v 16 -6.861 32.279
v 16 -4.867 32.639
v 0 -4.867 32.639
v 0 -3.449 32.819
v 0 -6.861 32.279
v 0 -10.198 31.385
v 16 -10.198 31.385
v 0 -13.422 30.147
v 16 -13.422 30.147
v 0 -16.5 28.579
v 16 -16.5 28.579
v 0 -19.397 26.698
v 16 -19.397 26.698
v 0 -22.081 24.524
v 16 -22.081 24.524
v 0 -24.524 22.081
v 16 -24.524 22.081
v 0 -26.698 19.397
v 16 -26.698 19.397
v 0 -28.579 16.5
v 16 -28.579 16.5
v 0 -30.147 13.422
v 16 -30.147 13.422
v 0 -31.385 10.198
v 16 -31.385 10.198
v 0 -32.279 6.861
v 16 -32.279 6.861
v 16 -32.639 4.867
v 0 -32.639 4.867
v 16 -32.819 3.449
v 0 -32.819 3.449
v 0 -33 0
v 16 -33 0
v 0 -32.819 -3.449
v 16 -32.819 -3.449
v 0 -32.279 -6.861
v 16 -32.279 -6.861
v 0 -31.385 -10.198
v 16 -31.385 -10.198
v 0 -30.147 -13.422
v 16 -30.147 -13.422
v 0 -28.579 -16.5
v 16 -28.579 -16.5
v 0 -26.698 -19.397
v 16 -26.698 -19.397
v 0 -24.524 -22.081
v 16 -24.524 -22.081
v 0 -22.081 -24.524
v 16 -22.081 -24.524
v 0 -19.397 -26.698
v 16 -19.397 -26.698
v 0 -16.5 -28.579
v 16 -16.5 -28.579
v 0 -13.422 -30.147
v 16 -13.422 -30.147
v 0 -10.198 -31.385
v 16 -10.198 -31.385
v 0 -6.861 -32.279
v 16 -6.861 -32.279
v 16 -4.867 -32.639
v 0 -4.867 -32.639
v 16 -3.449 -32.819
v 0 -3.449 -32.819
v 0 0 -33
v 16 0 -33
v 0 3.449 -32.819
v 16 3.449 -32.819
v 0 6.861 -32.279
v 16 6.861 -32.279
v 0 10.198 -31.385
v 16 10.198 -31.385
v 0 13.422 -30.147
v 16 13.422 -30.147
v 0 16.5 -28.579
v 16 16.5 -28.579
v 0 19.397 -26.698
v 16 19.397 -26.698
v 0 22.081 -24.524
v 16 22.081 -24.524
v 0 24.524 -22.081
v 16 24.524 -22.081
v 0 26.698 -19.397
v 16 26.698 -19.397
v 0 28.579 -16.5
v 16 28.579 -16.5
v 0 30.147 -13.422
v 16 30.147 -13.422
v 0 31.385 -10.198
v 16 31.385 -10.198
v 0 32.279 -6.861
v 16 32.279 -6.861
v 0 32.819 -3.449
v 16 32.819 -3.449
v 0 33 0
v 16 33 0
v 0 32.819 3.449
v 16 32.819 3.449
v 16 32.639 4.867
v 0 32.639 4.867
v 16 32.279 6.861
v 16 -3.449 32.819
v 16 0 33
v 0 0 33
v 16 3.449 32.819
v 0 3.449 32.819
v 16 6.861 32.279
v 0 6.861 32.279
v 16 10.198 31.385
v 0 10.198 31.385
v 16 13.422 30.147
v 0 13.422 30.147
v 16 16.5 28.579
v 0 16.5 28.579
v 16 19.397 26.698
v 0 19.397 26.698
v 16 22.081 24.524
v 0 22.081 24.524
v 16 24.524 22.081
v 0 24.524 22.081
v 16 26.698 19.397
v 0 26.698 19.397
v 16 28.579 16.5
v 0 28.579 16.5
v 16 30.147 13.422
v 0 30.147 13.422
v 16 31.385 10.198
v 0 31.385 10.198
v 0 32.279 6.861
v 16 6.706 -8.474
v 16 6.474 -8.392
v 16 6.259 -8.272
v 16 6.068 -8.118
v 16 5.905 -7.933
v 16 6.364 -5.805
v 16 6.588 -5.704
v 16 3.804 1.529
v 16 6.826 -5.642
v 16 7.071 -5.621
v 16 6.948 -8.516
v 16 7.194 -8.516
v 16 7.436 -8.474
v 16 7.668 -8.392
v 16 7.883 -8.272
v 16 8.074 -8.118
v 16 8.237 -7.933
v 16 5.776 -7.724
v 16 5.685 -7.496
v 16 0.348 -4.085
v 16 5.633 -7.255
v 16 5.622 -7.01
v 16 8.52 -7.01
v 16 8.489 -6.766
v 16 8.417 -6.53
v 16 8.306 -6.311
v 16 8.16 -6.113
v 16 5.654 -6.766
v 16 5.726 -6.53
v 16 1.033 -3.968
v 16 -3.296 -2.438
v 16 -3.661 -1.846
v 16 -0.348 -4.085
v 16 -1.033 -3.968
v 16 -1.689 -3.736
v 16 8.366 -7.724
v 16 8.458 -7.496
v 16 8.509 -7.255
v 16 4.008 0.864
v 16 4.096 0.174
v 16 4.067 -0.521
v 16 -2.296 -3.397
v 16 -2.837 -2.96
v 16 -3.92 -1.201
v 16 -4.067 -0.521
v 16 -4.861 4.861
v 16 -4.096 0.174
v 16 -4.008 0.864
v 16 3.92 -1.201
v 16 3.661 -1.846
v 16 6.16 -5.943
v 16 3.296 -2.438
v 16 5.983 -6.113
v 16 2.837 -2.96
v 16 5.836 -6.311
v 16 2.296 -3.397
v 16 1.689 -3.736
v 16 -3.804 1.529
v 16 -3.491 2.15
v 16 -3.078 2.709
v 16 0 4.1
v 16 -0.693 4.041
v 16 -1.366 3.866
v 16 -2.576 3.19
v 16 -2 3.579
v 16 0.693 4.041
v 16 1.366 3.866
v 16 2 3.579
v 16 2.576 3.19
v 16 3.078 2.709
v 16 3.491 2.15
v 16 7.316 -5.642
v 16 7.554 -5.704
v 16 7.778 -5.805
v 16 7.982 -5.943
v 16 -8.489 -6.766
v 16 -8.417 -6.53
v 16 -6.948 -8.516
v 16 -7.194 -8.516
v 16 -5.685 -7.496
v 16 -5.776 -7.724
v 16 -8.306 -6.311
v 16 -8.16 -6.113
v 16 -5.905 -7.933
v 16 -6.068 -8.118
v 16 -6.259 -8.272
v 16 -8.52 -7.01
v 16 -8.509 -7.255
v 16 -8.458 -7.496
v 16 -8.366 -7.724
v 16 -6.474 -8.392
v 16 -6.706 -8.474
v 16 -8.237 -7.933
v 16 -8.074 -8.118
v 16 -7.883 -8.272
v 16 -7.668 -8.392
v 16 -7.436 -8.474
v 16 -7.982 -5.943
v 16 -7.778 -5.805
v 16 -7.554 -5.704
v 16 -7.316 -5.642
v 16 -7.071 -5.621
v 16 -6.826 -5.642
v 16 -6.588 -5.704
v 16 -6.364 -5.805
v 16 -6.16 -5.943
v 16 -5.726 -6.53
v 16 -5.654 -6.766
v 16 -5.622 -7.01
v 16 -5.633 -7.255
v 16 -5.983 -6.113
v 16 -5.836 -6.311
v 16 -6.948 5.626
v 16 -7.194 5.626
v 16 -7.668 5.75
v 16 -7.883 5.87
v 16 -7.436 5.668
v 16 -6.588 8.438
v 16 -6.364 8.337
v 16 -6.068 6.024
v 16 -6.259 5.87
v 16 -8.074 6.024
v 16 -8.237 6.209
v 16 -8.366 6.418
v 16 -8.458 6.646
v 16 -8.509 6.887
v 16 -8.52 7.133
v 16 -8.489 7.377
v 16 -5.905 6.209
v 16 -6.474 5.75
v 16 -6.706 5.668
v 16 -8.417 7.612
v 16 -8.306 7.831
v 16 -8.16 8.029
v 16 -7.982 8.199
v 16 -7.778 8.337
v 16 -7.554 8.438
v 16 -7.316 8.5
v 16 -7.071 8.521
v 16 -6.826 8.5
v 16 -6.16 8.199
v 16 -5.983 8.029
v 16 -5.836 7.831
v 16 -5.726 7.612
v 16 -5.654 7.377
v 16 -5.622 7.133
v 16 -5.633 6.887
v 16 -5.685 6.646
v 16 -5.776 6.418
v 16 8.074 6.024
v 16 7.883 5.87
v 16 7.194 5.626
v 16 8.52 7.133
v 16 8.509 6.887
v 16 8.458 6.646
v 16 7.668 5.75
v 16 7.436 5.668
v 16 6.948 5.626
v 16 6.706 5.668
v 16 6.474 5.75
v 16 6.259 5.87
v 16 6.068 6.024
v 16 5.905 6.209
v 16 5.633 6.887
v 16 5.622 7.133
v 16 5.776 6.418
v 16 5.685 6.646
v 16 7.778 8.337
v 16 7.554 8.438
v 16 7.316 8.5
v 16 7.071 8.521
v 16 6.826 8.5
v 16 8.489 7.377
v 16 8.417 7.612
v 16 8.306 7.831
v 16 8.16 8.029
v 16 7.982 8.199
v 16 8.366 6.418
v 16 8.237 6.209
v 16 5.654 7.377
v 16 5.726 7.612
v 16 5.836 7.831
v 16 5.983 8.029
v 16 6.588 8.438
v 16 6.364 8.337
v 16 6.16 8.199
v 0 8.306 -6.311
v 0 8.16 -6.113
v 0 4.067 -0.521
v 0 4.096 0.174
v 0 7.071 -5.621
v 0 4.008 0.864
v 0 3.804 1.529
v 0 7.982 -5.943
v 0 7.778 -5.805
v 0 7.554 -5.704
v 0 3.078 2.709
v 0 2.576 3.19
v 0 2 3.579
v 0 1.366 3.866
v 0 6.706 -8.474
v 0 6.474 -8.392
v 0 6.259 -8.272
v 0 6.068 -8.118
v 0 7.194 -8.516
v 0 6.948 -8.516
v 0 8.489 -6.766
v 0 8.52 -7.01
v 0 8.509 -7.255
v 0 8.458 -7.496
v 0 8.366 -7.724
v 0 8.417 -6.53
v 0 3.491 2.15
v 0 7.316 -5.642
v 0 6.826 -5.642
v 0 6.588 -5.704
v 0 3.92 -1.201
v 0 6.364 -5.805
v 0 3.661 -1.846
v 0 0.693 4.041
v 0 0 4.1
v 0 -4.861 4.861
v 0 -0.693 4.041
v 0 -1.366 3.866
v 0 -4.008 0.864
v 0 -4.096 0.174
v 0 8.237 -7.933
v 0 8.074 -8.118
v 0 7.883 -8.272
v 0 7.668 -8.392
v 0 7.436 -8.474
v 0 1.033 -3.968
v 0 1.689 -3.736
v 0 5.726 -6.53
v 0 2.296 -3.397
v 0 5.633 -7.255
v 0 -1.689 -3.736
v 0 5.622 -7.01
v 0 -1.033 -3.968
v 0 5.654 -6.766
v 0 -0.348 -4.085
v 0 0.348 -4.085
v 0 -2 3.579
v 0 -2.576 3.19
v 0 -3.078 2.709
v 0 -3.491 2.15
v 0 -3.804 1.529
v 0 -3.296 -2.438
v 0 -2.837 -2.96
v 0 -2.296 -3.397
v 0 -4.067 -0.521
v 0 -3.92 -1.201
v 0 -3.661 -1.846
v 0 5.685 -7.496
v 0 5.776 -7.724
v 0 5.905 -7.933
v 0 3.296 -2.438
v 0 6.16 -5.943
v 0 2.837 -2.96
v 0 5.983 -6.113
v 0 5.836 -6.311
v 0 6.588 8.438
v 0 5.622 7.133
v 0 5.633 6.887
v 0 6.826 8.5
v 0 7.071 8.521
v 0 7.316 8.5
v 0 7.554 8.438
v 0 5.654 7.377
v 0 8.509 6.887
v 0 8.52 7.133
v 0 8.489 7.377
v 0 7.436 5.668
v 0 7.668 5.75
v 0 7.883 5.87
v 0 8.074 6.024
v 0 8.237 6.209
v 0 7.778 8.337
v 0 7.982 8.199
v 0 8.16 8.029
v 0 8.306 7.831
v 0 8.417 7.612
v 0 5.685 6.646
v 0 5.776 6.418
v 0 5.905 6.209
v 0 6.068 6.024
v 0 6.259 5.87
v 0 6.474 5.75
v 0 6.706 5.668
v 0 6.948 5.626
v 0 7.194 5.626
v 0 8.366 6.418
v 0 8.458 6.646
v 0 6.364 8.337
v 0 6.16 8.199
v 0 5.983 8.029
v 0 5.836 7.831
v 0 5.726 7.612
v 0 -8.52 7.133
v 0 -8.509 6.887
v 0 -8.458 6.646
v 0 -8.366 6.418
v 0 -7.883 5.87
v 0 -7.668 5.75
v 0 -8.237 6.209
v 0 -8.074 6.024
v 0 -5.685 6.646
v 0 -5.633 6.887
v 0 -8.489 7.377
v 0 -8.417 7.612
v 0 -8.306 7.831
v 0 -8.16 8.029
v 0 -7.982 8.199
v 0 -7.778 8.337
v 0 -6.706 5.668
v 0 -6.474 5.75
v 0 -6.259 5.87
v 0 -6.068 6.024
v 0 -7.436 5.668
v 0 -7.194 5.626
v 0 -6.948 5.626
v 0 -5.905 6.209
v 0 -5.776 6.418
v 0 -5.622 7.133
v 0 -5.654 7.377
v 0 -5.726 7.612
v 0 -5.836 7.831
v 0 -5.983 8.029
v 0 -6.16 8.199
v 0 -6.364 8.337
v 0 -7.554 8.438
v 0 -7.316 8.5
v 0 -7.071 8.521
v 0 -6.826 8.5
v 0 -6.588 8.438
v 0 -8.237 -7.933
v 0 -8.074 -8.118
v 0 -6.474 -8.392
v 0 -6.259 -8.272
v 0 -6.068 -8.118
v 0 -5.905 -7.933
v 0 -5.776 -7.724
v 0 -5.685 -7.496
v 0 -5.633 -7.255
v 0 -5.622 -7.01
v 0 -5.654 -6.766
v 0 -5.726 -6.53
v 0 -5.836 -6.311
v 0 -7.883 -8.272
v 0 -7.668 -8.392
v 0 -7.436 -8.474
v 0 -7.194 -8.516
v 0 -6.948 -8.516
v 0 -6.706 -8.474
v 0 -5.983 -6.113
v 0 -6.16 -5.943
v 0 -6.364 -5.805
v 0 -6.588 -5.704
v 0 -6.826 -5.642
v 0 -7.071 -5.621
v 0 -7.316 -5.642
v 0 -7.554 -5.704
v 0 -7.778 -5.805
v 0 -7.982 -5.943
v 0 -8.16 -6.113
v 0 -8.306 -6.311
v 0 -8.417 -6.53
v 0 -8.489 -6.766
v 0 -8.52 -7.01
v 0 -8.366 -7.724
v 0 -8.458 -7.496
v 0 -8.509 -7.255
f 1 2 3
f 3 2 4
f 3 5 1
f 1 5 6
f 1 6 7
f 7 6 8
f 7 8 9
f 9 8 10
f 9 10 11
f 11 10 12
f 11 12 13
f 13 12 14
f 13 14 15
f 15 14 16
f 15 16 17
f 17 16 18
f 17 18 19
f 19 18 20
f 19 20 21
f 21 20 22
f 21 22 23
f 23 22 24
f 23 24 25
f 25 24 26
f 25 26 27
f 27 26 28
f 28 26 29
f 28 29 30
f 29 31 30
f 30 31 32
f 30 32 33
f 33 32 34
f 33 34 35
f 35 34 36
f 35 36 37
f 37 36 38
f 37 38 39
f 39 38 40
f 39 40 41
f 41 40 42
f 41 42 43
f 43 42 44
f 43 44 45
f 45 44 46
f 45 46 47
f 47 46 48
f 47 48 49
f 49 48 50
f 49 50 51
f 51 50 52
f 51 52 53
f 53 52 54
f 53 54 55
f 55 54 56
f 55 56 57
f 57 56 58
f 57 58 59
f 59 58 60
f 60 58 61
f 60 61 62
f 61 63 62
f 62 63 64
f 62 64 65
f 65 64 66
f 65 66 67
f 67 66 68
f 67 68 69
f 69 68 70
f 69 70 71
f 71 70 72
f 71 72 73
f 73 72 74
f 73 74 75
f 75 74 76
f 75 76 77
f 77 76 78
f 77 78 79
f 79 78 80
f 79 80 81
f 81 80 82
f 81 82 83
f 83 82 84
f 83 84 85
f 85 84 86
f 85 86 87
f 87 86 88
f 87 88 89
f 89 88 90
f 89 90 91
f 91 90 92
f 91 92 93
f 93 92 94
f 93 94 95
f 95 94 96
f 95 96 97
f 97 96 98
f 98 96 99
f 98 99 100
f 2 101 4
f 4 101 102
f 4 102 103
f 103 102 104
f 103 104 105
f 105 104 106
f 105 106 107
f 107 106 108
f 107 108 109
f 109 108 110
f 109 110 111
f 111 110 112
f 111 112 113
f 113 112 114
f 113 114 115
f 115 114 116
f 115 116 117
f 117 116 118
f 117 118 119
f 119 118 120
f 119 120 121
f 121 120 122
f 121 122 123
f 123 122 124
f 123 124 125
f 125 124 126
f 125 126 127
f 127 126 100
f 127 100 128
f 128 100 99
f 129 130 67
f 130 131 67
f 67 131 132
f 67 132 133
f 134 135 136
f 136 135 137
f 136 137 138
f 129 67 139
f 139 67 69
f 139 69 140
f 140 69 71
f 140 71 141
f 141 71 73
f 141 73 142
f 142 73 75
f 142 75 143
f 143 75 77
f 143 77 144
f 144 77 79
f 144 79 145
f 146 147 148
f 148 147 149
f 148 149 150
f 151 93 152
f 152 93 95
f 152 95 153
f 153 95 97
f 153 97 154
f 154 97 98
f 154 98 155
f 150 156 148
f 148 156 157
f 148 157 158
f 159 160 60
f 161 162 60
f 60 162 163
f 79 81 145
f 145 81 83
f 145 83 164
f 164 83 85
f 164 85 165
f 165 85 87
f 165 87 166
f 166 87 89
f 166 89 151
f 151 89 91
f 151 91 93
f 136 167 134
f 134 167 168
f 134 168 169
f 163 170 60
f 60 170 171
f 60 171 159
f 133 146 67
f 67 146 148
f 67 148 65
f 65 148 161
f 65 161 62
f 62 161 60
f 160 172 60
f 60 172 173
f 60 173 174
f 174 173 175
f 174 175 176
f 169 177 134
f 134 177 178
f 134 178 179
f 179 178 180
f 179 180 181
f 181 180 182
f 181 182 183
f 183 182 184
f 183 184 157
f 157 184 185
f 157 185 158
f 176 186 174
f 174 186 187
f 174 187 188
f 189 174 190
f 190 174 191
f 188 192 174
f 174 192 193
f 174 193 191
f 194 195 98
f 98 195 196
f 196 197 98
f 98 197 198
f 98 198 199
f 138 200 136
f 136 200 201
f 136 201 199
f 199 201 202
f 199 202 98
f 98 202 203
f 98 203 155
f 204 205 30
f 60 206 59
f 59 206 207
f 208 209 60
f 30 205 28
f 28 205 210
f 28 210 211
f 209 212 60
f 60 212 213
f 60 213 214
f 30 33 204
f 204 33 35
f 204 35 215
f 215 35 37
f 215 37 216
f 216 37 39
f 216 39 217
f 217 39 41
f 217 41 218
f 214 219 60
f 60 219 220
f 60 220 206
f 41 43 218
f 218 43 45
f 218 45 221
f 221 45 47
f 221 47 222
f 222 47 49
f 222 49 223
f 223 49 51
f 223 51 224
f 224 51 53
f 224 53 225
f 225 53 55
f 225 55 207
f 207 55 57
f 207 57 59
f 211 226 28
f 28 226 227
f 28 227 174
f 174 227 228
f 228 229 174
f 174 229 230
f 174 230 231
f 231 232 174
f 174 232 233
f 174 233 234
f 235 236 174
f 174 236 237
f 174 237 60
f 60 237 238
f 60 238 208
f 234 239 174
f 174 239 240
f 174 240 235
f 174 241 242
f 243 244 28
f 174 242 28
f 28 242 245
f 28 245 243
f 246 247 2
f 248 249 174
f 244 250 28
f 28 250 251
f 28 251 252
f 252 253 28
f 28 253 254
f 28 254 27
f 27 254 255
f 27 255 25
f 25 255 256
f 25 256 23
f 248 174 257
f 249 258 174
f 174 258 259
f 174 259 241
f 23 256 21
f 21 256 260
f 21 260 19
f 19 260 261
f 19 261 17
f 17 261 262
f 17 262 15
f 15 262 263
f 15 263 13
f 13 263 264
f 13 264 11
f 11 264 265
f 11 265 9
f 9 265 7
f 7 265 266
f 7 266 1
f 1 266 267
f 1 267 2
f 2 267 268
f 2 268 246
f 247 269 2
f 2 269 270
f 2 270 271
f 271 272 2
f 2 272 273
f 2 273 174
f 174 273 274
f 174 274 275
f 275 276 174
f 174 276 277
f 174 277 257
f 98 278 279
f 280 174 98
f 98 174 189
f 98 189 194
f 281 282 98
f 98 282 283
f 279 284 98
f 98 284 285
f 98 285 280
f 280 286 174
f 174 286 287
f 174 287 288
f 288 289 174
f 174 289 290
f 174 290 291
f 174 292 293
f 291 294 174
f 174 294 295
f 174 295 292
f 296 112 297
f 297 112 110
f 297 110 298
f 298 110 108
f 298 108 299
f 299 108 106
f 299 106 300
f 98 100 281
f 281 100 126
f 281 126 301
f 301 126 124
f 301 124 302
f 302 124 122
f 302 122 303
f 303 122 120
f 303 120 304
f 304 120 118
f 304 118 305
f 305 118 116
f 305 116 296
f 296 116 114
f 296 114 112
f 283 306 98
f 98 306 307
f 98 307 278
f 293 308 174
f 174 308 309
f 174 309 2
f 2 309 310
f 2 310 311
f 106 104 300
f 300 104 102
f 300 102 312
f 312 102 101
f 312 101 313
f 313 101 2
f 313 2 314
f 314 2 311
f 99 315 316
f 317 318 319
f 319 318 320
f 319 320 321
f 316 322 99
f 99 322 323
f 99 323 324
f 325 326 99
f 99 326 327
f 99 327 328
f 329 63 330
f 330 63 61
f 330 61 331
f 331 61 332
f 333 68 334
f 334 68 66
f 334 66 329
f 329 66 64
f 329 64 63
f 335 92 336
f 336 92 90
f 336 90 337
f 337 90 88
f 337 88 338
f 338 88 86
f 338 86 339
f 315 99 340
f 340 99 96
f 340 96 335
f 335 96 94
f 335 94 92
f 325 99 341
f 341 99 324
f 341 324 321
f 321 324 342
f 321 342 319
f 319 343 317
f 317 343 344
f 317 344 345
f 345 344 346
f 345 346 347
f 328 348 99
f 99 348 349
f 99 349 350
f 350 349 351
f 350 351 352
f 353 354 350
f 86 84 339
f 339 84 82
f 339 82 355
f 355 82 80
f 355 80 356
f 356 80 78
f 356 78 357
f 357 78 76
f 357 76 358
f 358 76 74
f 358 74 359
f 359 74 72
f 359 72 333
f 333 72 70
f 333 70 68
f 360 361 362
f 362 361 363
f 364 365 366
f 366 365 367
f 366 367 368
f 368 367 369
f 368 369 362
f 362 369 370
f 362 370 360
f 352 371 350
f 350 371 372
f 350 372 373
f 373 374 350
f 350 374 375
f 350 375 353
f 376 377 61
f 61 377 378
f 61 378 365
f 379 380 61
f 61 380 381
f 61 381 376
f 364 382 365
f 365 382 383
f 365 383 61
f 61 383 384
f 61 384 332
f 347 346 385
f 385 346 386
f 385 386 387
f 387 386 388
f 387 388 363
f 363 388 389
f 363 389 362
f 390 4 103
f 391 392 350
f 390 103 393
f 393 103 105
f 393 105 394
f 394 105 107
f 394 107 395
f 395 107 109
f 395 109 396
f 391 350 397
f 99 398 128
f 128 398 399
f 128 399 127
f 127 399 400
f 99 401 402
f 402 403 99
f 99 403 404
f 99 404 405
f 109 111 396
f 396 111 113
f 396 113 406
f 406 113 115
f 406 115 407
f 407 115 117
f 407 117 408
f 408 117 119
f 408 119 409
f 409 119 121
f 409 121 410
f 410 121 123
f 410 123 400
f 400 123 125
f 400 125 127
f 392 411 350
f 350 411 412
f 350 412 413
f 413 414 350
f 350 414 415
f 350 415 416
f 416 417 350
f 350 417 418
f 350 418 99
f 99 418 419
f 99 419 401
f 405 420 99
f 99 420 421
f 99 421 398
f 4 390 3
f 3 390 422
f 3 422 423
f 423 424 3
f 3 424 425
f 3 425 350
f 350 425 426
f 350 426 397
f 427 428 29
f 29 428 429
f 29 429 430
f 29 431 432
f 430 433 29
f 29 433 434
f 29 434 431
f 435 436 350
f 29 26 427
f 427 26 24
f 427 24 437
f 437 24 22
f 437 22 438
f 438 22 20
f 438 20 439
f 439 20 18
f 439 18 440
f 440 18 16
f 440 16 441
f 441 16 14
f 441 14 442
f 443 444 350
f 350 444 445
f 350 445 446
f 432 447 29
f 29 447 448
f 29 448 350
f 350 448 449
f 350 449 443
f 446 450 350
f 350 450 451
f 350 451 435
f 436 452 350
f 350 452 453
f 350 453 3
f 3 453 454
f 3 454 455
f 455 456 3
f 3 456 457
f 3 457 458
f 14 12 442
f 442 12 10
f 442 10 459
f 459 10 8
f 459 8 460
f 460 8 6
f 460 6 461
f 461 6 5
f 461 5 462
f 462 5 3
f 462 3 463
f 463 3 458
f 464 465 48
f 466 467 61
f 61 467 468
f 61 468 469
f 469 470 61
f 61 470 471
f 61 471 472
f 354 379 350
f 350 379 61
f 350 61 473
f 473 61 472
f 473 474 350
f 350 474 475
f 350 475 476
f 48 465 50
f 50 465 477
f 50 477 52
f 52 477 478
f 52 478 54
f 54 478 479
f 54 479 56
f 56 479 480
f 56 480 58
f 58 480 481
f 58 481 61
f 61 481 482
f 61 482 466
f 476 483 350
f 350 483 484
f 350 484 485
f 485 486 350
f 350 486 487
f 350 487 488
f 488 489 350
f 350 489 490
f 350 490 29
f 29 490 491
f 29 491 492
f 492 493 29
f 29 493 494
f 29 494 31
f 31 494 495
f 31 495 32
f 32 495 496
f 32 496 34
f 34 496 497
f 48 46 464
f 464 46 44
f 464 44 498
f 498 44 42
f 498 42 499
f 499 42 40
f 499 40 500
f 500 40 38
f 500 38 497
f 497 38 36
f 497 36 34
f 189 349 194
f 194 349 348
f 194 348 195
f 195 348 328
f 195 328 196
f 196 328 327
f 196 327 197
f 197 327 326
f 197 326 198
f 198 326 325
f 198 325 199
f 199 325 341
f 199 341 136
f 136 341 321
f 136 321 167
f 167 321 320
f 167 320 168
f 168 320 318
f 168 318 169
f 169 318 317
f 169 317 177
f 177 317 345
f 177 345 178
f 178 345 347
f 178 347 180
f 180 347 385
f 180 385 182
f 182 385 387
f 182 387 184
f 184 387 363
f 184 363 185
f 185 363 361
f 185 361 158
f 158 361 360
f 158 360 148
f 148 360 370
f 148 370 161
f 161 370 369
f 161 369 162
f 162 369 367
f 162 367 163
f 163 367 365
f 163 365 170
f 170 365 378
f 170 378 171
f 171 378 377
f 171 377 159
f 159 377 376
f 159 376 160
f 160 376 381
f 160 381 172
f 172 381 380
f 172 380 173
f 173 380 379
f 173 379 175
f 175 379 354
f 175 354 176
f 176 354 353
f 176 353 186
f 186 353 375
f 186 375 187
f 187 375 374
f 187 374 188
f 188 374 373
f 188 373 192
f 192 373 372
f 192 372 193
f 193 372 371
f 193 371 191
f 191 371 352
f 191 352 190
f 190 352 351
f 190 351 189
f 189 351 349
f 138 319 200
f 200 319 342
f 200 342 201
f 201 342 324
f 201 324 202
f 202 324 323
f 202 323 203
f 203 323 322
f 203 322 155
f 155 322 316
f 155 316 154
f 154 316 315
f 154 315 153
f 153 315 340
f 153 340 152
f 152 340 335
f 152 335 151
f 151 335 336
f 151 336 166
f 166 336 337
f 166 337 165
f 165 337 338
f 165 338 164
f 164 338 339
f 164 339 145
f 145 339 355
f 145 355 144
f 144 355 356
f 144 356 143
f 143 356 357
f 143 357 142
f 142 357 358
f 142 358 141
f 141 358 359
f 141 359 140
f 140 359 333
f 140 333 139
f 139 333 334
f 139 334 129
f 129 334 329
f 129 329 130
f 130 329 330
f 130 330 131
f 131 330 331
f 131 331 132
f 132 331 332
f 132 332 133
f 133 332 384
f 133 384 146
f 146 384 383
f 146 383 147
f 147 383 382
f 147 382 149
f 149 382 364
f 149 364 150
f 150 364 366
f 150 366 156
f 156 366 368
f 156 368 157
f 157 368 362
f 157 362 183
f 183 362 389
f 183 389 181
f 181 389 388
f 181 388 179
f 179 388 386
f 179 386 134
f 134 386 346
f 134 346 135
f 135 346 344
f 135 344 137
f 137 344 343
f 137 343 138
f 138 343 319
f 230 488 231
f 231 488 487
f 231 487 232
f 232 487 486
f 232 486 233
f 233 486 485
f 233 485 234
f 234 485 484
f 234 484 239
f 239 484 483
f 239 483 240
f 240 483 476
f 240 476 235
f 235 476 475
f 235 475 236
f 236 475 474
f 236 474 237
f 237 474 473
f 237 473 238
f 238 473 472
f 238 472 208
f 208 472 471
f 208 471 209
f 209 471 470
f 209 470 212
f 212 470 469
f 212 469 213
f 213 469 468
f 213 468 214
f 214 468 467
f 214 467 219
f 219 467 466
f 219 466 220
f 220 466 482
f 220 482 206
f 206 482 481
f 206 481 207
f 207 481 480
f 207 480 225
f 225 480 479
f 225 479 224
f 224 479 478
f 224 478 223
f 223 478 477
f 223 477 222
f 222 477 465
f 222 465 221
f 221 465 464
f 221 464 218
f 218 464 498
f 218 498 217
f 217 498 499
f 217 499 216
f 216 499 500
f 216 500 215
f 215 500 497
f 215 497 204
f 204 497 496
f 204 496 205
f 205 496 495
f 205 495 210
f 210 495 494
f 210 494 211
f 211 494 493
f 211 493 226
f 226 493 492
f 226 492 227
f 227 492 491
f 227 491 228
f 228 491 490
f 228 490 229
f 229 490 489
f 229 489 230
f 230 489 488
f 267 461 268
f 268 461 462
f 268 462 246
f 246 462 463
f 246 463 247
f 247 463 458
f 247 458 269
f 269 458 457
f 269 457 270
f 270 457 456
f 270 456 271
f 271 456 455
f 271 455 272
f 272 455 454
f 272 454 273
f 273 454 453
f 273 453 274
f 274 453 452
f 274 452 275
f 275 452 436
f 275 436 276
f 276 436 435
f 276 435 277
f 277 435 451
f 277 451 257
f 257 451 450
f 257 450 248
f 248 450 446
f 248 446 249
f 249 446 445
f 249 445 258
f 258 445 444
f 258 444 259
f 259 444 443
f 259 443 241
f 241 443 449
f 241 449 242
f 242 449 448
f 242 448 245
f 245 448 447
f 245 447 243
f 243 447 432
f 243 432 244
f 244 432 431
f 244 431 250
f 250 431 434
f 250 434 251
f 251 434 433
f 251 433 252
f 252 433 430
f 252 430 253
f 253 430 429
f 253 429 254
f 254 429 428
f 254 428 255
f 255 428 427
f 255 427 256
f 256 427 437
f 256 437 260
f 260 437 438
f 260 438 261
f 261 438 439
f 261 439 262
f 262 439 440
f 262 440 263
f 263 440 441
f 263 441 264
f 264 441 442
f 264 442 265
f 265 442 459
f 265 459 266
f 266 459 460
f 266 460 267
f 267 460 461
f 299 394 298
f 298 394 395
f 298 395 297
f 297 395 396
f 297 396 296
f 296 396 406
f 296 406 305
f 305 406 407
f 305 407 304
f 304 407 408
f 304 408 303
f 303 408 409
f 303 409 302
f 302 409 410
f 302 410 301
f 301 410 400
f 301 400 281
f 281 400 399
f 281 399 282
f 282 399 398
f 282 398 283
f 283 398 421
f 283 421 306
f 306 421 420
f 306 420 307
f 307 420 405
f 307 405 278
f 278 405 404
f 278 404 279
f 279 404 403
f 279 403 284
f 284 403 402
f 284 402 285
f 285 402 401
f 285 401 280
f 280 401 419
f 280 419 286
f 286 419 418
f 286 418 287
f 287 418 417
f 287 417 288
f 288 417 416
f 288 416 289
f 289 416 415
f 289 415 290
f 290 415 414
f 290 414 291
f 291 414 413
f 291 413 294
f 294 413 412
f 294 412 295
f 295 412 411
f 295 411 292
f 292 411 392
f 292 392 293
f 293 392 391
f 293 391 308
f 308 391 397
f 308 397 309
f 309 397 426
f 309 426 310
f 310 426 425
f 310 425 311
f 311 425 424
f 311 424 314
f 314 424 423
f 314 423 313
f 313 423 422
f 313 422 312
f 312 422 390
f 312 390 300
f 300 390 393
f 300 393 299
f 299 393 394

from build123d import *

# Parameters (mm, degrees)
SKETCH_1_R          = 33
EXTRUDE_1_DEPTH     = 16
SKETCH_2_R          = 4.1
SKETCH_2_R_2        = 1.45
CUT_EXTRUDE_1_DEPTH = 16


with BuildPart() as part:
    # 草图1 → 凸台-拉伸1 (new body)
    with BuildSketch(Plane(origin=(0, 0, 0), x_dir=(0, 0, -1), z_dir=(1, 0, 0))):
        Circle(SKETCH_1_R)
    extrude(amount=EXTRUDE_1_DEPTH)

    # 草图2 → 切除-拉伸1 (cut)
    with BuildSketch(Plane.ZY):
        Circle(SKETCH_2_R)
        with Locations((-7.071067812, 7.071067812)):
            Circle(SKETCH_2_R_2)
        with Locations((-7.071067812, -7.071067812)):
            Circle(SKETCH_2_R_2)
        with Locations((7.071067812, -7.071067812)):
            Circle(SKETCH_2_R_2)
        with Locations((7.071067812, 7.071067812)):
            Circle(SKETCH_2_R_2)
    extrude(amount=-CUT_EXTRUDE_1_DEPTH, mode=Mode.SUBTRACT)


solid = part.part
